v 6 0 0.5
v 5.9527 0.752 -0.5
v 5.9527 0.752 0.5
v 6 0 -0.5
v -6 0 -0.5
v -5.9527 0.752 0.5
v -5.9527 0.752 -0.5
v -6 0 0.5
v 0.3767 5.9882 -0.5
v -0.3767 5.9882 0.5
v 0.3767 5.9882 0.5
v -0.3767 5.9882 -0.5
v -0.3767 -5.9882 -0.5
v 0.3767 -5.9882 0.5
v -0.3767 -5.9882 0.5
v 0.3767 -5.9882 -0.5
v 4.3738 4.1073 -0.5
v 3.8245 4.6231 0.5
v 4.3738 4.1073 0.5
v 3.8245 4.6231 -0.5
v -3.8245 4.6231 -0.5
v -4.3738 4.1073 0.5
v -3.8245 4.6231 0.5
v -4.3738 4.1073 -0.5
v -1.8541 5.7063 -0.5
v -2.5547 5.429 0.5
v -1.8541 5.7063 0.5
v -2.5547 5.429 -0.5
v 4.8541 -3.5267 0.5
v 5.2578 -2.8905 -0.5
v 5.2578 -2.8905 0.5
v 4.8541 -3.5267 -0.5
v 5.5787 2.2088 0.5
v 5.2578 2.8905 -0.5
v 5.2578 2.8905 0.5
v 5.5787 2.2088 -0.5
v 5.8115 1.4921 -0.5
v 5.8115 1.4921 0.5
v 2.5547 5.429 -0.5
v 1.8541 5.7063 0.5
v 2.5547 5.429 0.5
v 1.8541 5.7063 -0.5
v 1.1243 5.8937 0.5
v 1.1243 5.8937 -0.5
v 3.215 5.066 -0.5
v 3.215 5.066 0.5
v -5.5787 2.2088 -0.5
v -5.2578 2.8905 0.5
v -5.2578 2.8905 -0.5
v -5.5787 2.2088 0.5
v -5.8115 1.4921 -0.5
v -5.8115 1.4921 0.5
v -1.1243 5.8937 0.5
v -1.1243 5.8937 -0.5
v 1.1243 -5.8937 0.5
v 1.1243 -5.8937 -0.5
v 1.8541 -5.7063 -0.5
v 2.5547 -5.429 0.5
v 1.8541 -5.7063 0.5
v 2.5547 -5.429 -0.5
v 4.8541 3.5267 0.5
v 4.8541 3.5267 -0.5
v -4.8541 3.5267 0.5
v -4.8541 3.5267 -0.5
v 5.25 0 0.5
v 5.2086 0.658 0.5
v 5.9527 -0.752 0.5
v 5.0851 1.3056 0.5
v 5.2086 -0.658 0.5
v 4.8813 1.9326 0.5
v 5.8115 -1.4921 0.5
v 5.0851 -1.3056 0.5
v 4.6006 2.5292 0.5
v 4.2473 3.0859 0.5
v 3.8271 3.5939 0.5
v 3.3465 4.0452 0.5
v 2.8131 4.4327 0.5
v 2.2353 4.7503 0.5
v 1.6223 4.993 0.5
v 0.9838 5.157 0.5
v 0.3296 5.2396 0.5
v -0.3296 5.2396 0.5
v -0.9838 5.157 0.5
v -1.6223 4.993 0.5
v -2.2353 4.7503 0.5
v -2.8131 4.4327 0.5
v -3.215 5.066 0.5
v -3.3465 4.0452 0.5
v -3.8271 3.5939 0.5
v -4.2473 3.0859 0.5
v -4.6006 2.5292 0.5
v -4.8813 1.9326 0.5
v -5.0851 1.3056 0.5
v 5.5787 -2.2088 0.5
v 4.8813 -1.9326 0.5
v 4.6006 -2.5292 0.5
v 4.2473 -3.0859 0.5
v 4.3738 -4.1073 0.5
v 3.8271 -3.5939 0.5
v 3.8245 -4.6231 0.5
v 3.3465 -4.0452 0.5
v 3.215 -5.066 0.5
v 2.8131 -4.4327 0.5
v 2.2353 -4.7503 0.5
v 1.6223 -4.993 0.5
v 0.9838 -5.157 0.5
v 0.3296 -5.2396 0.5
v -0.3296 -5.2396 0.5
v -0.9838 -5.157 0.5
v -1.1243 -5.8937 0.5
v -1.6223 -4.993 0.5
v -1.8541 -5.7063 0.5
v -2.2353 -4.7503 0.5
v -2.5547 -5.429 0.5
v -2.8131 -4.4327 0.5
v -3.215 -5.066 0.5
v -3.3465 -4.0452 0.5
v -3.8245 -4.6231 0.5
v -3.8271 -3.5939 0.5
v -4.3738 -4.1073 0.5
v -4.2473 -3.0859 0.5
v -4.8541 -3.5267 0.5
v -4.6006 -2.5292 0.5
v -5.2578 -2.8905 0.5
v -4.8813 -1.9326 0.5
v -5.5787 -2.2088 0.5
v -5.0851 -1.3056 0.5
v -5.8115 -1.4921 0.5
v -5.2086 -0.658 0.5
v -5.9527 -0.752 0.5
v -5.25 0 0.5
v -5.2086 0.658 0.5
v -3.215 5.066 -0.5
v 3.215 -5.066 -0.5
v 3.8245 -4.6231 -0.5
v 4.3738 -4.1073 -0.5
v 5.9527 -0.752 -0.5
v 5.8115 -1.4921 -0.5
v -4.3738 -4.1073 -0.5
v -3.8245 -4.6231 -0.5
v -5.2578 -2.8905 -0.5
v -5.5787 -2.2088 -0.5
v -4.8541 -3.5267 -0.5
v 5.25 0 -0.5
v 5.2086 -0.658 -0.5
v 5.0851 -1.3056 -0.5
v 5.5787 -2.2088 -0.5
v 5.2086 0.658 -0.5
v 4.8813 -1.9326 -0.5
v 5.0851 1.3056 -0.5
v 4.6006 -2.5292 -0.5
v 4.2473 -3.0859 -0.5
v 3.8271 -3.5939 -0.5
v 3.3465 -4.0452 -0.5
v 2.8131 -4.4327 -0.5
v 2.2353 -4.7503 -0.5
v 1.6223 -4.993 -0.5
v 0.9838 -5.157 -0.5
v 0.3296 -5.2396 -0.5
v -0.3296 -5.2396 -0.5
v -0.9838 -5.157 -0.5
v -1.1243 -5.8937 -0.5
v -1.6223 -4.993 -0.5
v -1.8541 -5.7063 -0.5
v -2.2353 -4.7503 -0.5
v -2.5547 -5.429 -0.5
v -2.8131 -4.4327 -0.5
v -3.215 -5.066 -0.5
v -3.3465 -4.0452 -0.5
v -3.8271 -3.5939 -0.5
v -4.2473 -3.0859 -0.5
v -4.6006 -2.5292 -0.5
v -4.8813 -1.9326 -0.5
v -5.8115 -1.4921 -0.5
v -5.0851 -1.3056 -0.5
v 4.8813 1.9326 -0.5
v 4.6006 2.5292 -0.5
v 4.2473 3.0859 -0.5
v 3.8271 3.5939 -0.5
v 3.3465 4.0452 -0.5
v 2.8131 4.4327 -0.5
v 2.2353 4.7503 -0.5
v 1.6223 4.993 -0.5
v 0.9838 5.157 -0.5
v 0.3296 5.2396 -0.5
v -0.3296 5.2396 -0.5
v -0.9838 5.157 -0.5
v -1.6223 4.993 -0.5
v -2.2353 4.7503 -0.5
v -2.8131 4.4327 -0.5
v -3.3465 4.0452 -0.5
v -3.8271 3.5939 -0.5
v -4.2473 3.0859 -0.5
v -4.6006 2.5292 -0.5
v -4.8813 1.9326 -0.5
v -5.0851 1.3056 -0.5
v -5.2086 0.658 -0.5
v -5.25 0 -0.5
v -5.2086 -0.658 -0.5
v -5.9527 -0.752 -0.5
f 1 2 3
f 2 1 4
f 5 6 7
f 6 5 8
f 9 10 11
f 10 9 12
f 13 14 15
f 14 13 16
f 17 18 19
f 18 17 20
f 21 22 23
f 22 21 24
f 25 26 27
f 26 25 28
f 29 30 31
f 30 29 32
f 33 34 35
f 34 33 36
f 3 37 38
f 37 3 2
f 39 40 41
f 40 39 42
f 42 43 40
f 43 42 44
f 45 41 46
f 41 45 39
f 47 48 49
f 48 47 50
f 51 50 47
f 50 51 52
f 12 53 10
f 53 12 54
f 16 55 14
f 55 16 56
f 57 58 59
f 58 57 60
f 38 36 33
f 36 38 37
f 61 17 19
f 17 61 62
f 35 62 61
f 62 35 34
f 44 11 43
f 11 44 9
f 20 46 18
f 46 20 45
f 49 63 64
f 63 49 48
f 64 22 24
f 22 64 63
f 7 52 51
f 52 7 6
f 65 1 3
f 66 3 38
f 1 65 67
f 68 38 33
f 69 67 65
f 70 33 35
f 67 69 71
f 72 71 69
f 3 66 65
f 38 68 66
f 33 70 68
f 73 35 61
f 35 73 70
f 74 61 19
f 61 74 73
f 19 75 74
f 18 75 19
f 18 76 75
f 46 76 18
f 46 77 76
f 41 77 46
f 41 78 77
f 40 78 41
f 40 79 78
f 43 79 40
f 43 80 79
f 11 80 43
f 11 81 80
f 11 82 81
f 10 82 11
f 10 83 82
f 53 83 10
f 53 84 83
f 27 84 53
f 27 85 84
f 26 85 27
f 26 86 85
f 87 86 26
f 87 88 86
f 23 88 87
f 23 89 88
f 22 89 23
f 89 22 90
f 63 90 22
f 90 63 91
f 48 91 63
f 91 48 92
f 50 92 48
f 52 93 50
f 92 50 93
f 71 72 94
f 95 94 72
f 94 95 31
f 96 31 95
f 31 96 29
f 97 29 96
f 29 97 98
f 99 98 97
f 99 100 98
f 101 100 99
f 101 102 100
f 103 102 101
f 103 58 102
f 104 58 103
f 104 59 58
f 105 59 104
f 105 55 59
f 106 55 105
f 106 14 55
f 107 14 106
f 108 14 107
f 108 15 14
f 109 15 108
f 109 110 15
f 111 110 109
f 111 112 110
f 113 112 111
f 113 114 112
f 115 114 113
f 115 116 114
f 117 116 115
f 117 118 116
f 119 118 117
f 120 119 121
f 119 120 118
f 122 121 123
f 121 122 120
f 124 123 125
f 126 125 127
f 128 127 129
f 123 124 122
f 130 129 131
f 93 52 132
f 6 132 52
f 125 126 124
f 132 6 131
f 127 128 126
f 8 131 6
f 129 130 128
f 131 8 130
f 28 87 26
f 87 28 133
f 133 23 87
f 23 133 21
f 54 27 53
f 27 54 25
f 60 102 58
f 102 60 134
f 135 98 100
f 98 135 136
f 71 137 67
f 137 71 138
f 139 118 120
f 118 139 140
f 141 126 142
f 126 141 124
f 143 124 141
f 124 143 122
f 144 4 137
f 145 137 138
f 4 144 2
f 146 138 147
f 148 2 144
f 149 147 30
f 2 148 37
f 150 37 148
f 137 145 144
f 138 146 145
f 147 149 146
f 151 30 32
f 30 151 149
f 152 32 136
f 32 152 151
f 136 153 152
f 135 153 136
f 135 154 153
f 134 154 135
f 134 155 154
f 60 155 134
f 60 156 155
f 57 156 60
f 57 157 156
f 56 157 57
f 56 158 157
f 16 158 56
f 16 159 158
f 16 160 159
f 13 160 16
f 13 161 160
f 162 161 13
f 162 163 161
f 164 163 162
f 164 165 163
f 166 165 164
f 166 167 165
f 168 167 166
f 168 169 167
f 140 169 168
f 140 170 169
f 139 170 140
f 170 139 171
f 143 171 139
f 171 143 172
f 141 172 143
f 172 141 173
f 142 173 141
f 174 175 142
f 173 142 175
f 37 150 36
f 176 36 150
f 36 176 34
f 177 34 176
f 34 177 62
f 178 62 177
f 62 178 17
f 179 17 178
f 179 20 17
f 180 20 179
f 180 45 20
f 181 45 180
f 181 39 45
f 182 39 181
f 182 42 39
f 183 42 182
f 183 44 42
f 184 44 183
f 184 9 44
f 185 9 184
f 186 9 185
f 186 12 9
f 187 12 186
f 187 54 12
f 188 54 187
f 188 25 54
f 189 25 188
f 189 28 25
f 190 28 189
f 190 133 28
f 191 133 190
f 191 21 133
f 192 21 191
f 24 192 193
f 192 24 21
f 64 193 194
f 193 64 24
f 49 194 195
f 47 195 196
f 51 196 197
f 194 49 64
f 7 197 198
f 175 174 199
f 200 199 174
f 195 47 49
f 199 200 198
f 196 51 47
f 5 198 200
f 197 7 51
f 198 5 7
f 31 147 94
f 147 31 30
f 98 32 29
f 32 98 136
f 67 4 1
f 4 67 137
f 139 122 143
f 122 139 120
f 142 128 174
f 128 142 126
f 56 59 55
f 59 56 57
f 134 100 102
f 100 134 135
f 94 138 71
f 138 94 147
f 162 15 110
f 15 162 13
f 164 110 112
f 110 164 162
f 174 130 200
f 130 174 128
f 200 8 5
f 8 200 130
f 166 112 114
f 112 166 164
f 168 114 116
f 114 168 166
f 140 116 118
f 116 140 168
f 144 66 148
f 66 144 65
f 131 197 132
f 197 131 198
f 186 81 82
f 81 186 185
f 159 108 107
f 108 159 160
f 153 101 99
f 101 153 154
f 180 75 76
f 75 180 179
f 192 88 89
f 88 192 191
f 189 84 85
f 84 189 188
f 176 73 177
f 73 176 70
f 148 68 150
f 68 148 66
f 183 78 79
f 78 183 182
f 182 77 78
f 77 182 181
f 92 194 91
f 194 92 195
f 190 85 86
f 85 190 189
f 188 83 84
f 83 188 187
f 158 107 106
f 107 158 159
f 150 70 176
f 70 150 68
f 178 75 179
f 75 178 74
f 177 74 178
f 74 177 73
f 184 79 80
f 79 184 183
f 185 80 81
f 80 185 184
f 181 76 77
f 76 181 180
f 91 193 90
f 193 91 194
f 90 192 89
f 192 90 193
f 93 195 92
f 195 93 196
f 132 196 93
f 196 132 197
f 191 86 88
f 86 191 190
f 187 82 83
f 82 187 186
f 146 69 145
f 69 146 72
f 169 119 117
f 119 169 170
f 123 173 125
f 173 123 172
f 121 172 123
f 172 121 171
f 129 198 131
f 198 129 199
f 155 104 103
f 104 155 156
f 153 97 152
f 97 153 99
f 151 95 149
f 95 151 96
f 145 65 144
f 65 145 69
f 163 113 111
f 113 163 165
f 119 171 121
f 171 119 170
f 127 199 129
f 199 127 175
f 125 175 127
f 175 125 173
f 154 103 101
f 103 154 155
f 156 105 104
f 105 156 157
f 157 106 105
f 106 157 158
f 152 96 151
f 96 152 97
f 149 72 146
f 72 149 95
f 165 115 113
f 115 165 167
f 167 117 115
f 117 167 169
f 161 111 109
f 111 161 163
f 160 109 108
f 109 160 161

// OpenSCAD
$fn = 50;


difference() {
	union() {
		translate(v = [0, 0, -0.5000000000]) {
			cylinder(h = 1, r = 6.0000000000);
		}
	}
	union() {
		translate(v = [0, 0, -100.0000000000]) {
			cylinder(h = 200, r = 5.2500000000);
		}
	}
}
